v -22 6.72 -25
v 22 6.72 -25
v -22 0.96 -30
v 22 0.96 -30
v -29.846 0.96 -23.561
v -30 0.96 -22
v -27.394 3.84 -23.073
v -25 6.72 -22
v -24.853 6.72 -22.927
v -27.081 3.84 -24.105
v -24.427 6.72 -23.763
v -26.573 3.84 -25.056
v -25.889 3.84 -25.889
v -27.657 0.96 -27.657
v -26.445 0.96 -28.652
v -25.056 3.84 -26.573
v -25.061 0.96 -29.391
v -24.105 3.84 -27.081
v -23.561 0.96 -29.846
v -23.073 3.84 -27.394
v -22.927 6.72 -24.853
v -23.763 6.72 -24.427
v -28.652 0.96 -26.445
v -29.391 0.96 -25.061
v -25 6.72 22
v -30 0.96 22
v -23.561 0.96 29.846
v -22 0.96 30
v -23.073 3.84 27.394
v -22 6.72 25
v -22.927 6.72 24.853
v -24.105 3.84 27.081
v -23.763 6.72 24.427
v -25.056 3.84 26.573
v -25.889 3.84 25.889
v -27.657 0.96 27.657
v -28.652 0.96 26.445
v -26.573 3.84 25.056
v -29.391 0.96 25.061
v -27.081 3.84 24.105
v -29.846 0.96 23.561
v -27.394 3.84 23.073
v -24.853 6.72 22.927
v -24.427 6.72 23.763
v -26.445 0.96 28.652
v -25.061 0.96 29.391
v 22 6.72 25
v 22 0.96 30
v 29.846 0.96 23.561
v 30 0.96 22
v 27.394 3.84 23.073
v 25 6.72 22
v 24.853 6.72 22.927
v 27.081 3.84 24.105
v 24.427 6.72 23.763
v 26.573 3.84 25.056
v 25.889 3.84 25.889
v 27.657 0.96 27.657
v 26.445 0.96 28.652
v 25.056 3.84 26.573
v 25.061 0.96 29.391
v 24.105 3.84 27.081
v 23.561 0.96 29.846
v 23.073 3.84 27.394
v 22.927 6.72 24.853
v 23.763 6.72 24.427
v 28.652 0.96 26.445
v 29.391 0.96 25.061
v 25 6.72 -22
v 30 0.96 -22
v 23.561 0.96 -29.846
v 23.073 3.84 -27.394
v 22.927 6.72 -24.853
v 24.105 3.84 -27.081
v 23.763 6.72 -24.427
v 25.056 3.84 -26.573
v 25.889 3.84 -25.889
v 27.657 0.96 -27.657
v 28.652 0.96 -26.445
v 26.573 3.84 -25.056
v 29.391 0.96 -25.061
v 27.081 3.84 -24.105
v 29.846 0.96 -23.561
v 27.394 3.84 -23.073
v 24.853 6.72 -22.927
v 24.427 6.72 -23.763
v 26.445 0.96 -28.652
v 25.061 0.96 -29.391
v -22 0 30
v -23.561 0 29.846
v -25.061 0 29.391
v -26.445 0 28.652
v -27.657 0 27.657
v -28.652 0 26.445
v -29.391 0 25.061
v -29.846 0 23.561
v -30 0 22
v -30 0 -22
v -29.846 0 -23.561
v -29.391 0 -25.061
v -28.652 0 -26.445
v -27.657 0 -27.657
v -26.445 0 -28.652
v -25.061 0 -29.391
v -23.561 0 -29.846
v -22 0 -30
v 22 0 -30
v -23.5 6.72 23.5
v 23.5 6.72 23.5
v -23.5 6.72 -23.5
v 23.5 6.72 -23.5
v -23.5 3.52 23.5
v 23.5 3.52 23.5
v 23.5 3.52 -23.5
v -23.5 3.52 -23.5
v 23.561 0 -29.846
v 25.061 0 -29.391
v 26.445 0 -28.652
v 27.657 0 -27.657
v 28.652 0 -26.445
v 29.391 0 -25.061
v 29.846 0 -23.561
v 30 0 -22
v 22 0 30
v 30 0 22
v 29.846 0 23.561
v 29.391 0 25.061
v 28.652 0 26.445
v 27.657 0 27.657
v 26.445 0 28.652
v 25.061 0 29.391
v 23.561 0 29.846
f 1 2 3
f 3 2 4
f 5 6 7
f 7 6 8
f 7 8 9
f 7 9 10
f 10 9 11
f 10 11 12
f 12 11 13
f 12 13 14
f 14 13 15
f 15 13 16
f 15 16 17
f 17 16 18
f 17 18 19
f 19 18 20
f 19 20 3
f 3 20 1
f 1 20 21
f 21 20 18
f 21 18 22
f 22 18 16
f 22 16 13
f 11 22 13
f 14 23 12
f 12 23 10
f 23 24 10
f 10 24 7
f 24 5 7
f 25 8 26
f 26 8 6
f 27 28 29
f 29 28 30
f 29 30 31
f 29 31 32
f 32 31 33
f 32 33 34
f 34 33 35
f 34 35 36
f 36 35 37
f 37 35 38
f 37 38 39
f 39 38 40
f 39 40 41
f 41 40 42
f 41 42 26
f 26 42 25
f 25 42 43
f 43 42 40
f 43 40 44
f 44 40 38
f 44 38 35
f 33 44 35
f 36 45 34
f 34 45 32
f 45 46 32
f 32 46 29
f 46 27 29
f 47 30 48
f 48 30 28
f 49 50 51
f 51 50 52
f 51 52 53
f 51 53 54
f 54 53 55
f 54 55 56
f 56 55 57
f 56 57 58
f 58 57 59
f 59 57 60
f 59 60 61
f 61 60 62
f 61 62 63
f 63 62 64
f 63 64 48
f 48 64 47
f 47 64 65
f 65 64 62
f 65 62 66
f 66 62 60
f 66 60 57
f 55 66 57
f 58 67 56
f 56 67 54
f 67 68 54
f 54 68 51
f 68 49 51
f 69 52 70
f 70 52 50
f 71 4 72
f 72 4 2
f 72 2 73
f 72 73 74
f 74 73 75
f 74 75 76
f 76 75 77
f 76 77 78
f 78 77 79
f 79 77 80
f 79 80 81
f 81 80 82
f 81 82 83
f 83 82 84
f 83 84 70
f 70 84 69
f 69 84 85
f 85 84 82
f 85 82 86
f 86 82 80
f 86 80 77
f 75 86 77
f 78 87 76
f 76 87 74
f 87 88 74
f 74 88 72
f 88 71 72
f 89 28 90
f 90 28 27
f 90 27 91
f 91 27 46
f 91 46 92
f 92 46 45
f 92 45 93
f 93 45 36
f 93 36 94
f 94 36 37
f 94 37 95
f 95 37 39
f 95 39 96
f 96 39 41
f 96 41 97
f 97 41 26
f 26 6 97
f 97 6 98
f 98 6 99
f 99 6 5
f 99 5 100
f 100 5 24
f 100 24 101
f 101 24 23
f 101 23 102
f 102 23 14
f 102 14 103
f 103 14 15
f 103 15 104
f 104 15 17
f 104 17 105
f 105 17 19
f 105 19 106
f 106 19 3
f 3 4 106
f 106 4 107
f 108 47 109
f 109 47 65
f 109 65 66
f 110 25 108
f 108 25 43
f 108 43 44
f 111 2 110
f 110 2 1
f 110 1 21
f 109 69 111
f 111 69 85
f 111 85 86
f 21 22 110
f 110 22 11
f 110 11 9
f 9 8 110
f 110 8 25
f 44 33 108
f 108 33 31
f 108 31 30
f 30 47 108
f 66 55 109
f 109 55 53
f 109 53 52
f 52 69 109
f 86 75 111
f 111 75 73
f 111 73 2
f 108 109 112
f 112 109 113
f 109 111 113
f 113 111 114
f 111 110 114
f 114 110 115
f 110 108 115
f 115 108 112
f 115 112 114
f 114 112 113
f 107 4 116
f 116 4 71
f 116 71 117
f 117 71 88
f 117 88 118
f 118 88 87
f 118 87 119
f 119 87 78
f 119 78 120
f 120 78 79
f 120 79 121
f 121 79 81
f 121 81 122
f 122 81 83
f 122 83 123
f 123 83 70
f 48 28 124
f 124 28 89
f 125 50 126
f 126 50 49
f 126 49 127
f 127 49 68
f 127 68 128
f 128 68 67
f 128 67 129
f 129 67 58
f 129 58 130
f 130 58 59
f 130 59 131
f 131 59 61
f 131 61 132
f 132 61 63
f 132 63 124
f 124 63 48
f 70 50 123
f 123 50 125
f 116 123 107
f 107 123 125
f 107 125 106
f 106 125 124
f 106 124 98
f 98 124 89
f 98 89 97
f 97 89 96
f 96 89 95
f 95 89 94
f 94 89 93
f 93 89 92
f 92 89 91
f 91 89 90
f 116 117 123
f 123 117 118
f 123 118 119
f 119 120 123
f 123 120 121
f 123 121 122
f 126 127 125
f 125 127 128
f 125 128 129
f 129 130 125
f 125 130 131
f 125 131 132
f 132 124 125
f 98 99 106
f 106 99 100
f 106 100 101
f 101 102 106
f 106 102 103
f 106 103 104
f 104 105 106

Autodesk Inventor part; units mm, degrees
ref_plane "YZ Plane" through (0, 0, 0) normal (1, 0, 0) x (0, 1, 0)
ref_plane "XZ Plane" through (0, 0, 0) normal (0, 1, 0) x (-1, 0, 0)
ref_plane "XY Plane" through (0, 0, 0) normal (0, 0, 1) x (1, 0, 0)
sketch "Sketch1" plane through (0, 0, 0) normal (0, 1, 0) x (-1, 0, 0)
  line L0 (30, 30) -> (-30, 30)
  line L1 (-30, 30) -> (-30, -30)
  line L2 (-30, -30) -> (30, -30)
  line L3 (30, -30) -> (30, 30)
  point P0 (0, 0)
  point P1 (30, 0)
  point P2 (0, 30)
  dimension "d0" = 60
  dimension "d1" = 60
extrude "Extrusion1" add sketch "Sketch1" along normal blind 0.96
sketch "Sketch2" plane through (0, 0.96, 0) normal (0, 1, 0) x (1, 0, 0)
  line L0 (30, -30) -> (30, 30) projected
  line L1 (30, 30) -> (-30, 30) projected
  line L2 (-30, 30) -> (-30, -30) projected
  line L3 (-30, -30) -> (30, -30) projected
  line L4 (-30, 0) -> (30, 0)
  line L5 (0, -30) -> (0, 30)
  circle A0 centre (-12.5, -12.5) radius 4.25
  circle A1 centre (-12.5, 12.5) radius 4.25
  circle A2 centre (12.5, 12.5) radius 4.25
  circle A3 centre (12.5, -12.5) radius 4.25
  point P0 (0, 0)
  dimension "d13" = 8.5
  dimension "d14" = 25
  dimension "d15" = 25
extrude "Extrusion2" add sketch "Sketch2" along normal blind 1.92 contours L3 L5 L4 L0 | L4 L5 L1 L0 | L3 L2 L4 L5 | L4 L2 L1 L5 | A0 | A1 | A2 | A3
sketch "Sketch3" plane through (0, 2.88, 0) normal (0, 1, 0) x (1, 0, 0)
  line L0 (-30, 30) -> (-30, -30) projected
  line L1 (-30, -30) -> (30, -30) projected
  line L2 (30, -30) -> (30, 30) projected
  line L3 (30, 30) -> (-30, 30) projected
  point P0 (0, 0)
extrude "Extrusion3" add sketch "Sketch3" along normal blind 0.64
fillet "Fillet1" radius 8 4 edges at (30, 1.76, 30) (-30, 1.76, 30) (-30, 1.76, -30) (30, 1.76, -30)
ref_plane "Arbeitsebene2" through (27.6569, 3.52, -27.6569) normal (-0.7071, 0, -0.7071) x (0, -1, 0)
sketch "Skizze7" plane through (0, 3.52, 0) normal (0, 1, 0) x (1, 0, 0)
  line L0 (-22, -30) -> (22, -30) projected
  arc A0 (22, -30) -> (30, -22) centre (22, -22) ccw projected
  line L1 (30, -22) -> (30, 22) projected
  arc A1 (30, 22) -> (22, 30) centre (22, 22) ccw projected
  line L2 (22, 30) -> (-22, 30) projected
  arc A2 (-22, 30) -> (-30, 22) centre (-22, 22) ccw projected
  line L3 (-30, 22) -> (-30, -22) projected
  arc A3 (-30, -22) -> (-22, -30) centre (-22, -22) ccw projected
  line L4 (22, -30) -> (-22, -30)
  line L5 (-30, -22) -> (-30, 22)
  line L6 (-22, 30) -> (22, 30)
  line L7 (30, 22) -> (30, -22)
  arc A4 (22, -30) -> (30, -22) centre (22, -22) ccw
  arc A5 (-30, -22) -> (-22, -30) centre (-22, -22) ccw
  arc A6 (-22, 30) -> (-30, 22) centre (-22, 22) ccw
  arc A7 (30, 22) -> (22, 30) centre (22, 22) ccw
  point P0 (0, 0)
extrude "Extrusion4" add sketch "Skizze7" along normal blind 3.2
sketch "Skizze8" plane through (0, 6.72, 0) normal (0, 1, 0) x (1, 0, 0)
  line L0 (23.5, 23.5) -> (-23.5, 23.5)
  line L1 (-23.5, 23.5) -> (-23.5, -23.5)
  line L2 (-23.5, -23.5) -> (23.5, -23.5)
  line L3 (23.5, -23.5) -> (23.5, 23.5)
  line L4 (23.5, 23.5) -> (-23.5, -23.5) construction
  line L5 (-23.5, 23.5) -> (23.5, -23.5) construction
  point P0 (0, 0)
  dimension "d25" = 47
  dimension "d26" = 47
extrude "Extrusion5" cut sketch "Skizze8" against normal blind 3.2
chamfer "Fasen2" distance 5 distance2 5.76 8 edges at (0, 6.72, -30) (-27.6569, 6.72, -27.6569) (-30, 6.72, 0) (-27.6569, 6.72, 27.6569) (0, 6.72, 30) (27.6569, 6.72, 27.6569) (30, 6.72, 0) (27.6569, 6.72, -27.6569) measured on face at (7.3333, 6.72, -25.6667)
properties part number "IMU_Base_T-Shirt"
